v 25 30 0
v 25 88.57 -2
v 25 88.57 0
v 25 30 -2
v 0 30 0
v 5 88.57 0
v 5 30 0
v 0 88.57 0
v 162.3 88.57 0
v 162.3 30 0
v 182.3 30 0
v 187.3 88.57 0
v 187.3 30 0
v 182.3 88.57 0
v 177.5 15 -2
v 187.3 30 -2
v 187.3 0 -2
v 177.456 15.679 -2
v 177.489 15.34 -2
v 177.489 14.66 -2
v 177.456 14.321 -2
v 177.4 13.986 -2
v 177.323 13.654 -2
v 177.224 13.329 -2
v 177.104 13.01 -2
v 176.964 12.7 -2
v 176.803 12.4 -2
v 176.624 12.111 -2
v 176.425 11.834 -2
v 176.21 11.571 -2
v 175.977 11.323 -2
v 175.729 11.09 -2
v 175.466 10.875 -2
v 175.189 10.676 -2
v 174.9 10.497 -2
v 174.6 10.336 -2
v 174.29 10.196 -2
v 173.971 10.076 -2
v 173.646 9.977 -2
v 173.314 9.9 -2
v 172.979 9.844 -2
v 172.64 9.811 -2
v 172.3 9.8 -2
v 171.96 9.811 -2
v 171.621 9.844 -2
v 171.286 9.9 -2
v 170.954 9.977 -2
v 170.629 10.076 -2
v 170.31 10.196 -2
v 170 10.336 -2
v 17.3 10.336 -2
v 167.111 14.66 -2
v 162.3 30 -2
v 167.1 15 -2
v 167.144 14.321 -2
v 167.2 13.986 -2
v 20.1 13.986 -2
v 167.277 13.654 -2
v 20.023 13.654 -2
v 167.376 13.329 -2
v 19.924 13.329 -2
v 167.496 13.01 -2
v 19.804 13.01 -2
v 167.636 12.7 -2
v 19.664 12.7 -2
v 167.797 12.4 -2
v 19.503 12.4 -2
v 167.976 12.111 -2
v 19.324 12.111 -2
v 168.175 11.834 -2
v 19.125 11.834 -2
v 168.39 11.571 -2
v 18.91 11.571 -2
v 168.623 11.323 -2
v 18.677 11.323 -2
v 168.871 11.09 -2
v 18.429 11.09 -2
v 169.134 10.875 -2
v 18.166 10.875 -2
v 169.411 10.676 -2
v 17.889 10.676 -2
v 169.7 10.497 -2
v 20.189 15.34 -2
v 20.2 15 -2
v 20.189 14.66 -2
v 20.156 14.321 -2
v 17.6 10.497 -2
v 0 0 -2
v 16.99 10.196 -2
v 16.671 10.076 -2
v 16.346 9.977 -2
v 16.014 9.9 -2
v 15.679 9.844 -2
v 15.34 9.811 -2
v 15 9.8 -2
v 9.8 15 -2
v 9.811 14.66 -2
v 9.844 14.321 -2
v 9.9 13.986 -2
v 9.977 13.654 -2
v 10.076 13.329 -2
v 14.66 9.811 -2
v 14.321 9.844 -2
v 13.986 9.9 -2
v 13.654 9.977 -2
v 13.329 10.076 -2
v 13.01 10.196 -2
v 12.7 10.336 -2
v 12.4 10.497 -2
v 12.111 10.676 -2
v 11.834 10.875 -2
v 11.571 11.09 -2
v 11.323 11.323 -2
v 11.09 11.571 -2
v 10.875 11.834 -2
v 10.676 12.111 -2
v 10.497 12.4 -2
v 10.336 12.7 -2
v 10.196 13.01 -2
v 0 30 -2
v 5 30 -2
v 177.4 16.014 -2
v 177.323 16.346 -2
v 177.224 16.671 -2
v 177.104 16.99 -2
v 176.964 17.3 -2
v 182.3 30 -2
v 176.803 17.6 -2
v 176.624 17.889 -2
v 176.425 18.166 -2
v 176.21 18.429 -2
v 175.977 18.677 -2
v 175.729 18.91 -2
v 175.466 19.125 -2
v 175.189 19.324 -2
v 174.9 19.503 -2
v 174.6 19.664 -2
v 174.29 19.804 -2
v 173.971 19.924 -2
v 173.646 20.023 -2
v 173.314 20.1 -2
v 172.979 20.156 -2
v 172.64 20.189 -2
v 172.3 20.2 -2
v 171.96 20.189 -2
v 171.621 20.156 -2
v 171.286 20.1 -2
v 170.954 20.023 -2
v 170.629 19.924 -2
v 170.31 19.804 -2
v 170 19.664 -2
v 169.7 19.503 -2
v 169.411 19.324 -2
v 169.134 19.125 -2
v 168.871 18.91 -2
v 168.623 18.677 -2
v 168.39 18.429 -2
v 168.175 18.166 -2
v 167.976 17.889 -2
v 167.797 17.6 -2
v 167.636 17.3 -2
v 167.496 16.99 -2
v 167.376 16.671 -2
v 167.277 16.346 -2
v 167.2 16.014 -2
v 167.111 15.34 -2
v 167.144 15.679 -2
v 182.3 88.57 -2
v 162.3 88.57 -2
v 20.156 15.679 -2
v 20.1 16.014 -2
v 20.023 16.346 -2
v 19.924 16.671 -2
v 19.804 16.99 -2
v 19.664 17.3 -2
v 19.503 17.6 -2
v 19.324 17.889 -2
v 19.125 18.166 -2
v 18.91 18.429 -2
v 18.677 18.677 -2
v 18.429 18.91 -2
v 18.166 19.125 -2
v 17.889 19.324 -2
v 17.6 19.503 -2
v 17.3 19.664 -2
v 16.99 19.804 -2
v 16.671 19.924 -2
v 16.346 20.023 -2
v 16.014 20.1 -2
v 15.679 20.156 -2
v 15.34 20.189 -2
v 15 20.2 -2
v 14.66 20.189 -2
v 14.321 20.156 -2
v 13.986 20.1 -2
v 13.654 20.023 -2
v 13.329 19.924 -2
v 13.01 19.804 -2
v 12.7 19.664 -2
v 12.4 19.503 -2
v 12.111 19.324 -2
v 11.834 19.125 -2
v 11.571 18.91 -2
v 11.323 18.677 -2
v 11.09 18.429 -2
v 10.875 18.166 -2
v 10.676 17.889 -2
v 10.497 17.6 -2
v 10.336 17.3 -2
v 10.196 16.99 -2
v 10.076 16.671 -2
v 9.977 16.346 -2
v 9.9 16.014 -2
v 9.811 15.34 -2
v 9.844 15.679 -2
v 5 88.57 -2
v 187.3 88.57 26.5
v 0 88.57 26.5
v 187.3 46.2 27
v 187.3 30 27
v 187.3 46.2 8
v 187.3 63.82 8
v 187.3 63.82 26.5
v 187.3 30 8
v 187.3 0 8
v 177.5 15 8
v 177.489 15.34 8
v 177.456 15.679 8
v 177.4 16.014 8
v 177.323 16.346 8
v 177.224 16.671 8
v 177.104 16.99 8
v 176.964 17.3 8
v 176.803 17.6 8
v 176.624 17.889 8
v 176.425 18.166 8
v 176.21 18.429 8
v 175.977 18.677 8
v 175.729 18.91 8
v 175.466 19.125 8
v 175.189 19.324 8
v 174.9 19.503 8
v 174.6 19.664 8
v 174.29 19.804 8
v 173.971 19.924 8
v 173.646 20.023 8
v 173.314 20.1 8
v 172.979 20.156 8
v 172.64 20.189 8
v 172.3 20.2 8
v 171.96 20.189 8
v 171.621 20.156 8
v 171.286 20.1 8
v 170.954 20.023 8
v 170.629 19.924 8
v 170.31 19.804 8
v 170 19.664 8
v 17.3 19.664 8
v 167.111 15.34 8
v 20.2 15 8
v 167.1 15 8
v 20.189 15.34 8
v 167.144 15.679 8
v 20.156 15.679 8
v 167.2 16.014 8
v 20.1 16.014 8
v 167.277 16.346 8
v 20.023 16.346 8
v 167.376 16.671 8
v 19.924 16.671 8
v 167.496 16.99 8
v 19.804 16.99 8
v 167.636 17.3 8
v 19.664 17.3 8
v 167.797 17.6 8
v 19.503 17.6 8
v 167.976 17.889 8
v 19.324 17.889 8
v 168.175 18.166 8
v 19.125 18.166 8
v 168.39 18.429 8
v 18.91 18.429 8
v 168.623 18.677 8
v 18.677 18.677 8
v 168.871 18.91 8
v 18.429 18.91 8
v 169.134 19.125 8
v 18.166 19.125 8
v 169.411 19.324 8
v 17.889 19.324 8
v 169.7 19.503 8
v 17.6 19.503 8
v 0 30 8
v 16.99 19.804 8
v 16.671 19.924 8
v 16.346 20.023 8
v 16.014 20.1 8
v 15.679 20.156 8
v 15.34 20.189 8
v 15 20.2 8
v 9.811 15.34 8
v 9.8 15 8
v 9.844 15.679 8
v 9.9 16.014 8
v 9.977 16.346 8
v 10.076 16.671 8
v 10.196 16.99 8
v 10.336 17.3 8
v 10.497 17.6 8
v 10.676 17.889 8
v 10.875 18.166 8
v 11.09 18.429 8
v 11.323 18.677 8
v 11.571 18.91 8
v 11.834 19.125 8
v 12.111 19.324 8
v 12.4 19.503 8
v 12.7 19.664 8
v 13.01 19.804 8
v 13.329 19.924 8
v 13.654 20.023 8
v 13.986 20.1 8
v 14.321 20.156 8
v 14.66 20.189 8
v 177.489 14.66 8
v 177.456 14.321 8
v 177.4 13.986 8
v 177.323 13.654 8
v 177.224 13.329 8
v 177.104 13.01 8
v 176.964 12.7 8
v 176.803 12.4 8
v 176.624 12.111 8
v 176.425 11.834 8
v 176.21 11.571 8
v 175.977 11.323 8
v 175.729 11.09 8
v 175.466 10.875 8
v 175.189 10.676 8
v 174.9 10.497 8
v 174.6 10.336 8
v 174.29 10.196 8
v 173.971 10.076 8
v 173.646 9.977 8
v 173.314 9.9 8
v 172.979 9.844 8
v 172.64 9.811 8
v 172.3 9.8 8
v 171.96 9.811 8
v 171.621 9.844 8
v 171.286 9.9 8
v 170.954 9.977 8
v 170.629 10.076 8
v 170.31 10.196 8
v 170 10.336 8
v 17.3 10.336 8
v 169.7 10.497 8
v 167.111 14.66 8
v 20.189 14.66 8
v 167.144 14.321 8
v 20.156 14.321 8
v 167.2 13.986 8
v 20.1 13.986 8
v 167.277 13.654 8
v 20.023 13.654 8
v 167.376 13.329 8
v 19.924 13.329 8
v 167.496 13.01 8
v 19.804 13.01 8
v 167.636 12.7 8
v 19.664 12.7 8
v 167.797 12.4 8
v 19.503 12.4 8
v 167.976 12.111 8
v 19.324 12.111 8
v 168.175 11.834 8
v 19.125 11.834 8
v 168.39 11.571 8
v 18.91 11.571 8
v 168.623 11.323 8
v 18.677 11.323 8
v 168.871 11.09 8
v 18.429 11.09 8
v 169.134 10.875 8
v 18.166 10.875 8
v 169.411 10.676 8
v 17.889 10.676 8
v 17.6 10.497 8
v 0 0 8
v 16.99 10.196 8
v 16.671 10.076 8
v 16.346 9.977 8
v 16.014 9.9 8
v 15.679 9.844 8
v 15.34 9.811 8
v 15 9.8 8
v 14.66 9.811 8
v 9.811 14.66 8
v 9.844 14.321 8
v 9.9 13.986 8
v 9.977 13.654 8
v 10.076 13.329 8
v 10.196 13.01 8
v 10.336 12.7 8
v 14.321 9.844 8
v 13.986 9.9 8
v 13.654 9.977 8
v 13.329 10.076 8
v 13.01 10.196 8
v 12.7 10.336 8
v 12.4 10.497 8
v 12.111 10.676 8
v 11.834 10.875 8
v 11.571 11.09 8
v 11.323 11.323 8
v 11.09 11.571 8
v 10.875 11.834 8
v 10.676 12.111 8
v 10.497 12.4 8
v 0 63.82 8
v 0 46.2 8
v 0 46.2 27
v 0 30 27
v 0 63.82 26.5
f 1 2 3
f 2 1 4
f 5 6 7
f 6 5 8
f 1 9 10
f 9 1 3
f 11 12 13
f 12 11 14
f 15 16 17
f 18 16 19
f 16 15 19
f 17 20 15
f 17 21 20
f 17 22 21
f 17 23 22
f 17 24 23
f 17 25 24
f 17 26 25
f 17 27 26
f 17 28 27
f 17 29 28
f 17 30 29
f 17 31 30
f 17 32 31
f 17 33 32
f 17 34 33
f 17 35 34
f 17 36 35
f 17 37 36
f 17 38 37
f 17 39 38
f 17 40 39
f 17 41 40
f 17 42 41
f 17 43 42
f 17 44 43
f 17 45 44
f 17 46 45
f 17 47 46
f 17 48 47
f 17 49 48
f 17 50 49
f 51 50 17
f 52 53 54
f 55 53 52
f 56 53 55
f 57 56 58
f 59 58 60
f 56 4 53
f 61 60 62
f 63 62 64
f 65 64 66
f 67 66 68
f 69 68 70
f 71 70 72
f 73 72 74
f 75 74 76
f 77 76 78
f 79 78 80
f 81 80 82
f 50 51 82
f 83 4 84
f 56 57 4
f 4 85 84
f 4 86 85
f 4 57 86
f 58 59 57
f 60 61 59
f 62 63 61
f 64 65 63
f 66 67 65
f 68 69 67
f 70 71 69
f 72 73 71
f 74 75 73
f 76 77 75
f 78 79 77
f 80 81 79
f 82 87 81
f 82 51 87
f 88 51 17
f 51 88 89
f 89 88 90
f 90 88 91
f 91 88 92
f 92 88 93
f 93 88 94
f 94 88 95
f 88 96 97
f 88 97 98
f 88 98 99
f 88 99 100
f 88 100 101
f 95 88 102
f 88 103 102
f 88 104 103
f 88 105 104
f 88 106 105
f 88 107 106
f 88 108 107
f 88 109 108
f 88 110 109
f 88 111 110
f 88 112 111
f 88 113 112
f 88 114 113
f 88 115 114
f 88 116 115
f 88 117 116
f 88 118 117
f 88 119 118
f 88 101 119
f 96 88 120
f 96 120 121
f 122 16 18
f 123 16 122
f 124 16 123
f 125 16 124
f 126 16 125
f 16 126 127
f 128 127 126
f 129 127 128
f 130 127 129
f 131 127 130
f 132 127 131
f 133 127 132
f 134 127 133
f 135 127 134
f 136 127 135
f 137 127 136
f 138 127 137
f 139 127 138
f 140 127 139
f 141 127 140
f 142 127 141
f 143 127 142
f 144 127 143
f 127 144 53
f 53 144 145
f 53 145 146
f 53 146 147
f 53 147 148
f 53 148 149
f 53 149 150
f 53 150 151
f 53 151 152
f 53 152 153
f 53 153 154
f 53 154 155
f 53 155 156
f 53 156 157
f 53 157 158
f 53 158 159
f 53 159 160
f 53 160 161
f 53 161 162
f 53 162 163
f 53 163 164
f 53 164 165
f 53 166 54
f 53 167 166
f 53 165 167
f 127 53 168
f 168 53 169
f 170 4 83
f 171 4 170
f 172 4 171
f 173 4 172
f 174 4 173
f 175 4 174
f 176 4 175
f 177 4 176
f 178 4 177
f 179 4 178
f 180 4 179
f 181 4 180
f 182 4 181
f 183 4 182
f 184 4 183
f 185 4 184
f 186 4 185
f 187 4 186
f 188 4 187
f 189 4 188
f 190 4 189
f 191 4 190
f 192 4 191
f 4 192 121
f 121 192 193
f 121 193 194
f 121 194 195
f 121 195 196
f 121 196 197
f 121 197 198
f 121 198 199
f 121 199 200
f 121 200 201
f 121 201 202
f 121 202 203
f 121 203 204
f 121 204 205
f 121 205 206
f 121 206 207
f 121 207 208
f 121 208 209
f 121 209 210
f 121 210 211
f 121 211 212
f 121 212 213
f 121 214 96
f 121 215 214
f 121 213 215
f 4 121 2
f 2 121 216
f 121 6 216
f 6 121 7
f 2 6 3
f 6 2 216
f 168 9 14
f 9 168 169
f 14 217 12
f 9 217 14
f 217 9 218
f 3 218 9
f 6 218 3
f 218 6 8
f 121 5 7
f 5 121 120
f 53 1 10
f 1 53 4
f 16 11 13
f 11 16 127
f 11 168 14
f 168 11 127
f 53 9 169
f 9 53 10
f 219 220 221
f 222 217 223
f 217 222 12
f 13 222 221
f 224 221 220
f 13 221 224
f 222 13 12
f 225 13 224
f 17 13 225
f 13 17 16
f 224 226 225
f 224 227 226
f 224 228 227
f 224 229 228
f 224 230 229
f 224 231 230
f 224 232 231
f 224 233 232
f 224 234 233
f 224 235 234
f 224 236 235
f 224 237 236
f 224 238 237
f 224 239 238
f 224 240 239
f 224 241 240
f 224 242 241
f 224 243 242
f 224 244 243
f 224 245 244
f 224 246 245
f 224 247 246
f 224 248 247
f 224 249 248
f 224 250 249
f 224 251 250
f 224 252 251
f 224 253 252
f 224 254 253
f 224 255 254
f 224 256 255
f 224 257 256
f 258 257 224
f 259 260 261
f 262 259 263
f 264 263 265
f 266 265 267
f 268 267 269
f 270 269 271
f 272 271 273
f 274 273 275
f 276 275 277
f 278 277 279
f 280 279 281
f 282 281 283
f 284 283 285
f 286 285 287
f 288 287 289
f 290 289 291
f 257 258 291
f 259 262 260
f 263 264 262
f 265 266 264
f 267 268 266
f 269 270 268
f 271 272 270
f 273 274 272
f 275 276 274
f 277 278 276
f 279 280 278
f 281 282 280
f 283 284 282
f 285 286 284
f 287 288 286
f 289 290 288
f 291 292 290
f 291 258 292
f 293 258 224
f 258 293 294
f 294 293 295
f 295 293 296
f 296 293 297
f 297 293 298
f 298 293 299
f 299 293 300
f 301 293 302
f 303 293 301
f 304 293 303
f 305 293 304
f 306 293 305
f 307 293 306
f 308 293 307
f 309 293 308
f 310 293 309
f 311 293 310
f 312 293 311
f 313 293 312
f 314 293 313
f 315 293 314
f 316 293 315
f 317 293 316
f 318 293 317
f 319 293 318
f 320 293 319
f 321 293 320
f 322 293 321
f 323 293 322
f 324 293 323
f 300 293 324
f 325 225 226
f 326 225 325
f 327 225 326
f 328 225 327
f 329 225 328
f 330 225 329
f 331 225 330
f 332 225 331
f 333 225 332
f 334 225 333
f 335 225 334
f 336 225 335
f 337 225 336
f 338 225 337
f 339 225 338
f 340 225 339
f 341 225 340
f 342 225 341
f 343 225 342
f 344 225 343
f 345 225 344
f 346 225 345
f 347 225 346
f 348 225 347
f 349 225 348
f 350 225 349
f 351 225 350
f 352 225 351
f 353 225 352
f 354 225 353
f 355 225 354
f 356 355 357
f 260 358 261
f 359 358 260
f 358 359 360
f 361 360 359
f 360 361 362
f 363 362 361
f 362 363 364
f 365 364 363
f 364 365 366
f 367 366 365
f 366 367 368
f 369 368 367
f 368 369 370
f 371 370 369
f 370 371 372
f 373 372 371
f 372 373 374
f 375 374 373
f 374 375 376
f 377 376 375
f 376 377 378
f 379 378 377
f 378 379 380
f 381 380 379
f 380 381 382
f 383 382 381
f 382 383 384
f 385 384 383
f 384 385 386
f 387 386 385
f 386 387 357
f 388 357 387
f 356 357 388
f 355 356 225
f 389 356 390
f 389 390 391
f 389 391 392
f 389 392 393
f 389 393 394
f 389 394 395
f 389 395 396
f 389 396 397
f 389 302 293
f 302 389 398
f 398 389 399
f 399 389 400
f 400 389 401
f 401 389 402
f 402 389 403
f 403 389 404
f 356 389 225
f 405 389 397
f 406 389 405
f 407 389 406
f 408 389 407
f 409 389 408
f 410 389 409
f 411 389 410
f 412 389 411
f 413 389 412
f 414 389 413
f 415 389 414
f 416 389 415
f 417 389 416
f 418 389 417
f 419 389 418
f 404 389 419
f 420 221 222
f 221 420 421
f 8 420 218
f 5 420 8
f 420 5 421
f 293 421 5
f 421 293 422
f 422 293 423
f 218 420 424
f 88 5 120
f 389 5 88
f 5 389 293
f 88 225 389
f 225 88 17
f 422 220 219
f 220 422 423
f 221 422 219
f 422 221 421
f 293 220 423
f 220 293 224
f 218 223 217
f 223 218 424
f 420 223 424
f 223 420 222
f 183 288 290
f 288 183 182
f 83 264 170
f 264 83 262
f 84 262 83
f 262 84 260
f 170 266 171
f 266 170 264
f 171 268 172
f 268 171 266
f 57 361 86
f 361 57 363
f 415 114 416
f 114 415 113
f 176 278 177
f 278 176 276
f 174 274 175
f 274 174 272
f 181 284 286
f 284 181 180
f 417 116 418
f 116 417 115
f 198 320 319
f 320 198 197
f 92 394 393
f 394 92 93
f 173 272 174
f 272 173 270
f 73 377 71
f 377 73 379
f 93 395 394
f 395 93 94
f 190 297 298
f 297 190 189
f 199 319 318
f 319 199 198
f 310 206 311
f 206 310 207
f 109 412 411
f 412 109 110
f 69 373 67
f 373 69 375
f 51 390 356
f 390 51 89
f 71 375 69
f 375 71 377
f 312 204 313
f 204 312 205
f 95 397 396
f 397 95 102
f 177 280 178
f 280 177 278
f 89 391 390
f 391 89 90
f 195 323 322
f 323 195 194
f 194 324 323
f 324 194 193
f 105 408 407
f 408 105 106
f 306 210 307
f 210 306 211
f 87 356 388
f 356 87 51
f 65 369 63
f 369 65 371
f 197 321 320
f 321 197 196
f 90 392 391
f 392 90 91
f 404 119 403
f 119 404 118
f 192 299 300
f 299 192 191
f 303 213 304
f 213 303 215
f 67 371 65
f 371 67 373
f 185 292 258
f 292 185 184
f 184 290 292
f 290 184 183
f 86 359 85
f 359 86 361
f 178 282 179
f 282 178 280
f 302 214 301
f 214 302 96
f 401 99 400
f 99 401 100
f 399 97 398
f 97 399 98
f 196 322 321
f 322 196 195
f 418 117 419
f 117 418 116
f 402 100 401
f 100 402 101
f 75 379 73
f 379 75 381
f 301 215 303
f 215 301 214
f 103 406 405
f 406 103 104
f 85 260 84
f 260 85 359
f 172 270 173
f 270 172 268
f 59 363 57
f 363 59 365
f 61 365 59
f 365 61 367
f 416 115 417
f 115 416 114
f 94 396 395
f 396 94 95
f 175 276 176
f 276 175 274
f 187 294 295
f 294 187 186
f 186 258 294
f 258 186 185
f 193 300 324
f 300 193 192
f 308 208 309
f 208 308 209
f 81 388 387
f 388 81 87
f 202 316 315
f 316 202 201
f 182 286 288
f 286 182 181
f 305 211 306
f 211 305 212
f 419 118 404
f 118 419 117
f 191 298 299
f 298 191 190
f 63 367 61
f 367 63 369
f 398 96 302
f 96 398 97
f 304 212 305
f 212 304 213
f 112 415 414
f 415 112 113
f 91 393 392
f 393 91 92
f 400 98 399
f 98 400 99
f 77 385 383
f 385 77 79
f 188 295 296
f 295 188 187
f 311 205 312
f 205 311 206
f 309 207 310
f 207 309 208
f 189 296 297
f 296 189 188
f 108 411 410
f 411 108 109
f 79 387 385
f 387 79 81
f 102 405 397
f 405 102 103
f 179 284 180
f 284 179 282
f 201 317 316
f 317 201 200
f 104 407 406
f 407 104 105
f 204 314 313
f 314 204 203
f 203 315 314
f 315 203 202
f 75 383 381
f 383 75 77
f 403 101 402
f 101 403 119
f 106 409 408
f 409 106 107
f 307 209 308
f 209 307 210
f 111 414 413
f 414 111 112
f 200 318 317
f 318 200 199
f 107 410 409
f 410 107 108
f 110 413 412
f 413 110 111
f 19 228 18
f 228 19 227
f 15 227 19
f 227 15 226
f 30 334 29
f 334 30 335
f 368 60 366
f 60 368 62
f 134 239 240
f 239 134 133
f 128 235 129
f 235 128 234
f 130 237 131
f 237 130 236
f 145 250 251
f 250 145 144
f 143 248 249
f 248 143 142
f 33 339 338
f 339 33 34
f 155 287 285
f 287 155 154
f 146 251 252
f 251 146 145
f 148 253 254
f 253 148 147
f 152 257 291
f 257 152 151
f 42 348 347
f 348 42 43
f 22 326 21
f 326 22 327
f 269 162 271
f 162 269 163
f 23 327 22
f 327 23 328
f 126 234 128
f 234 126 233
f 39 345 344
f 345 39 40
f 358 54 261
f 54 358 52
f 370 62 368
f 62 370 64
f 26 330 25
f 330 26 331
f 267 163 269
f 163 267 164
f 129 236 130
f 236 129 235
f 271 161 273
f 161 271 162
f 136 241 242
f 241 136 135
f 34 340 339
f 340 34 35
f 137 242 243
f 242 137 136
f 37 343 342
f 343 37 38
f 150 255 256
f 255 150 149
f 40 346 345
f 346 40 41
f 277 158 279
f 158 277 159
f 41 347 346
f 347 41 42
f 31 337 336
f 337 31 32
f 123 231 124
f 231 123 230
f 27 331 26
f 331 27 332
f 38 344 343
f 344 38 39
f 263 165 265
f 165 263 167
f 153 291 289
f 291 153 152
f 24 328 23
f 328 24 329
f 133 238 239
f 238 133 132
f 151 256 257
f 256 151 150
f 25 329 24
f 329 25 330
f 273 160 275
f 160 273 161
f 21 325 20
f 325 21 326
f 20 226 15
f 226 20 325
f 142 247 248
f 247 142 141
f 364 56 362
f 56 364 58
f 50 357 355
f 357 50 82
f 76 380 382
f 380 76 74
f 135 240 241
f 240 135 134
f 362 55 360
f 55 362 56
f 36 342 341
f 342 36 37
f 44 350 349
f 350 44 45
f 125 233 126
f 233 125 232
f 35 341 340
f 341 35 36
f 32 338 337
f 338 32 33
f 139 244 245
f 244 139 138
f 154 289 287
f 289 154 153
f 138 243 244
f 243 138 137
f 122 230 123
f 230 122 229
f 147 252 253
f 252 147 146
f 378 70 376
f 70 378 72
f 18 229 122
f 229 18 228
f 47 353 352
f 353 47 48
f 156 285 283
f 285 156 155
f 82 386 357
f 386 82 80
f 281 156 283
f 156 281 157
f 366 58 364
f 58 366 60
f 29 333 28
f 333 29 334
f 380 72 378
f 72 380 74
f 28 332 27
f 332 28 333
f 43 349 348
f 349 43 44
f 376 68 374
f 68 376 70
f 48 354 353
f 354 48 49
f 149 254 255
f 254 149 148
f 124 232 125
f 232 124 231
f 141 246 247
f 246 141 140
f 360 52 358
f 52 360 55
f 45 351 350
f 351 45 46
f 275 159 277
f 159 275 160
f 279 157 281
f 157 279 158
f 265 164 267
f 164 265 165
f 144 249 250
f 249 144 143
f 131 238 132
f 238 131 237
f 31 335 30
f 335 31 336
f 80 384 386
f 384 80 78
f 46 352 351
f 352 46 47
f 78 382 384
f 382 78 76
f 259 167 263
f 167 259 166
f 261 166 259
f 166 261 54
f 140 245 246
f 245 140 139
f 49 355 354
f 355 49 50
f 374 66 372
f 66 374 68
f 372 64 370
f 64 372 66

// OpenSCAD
$fn=96;

// Eurobox V70 clamp v3 prototype.
// X = full clamp width, Y = installed vertical direction, Z = depth toward box.
// Fixed/measured:
// screw axis -> box underside = 15.00 mm
// box underside -> start protrusion = 16.45 mm
// box underside -> top protrusion = 33.57 mm
// protrusion depth ~= 18.50 mm
// upper stabilising contact = 25.00 mm

w = 187.30;
h = 88.57;
spindle_x = [15.00,172.30];
spindle_y = 15.00;

box_bottom_y = 30.00;
pocket_y0 = 46.20; // 0.25 mm below nominal protrusion start
pocket_y1 = 63.82; // 0.25 mm above nominal protrusion top

backbone_t = 8.00;
primary_front = 27.00; // lower primary contact +0.50 vs upper
upper_front = 26.50;

bearing_back = -2.00;
bearing_front = 8.00;
bearing_t = bearing_front-bearing_back; // 10.00 mm
bushing_bore_d = 10.40;
rib_w = 20.00;

module clamp_solid() {
    union() {
        cube([w,h,backbone_t]);

        // Full-width 10 mm screw-zone spine.
        translate([0,0,bearing_back])
            cube([w,box_bottom_y,bearing_t]);

        // Rear ribs above each screw station.
        for (x=spindle_x)
            translate([x-rib_w/2,box_bottom_y,bearing_back])
                cube([rib_w,h-box_bottom_y,2.00]);

        // Primary lower contact.
        translate([0,box_bottom_y,backbone_t])
            cube([w,pocket_y0-box_bottom_y,primary_front-backbone_t]);

        // Y=46.20..63.82 remains recessed to Z=8 for the box protrusion.

        // Upper secondary/stabilising contact.
        translate([0,pocket_y1,backbone_t])
            cube([w,h-pocket_y1,upper_front-backbone_t]);
    }
}

difference() {
    clamp_solid();
    for (x=spindle_x)
        translate([x,spindle_y,bearing_back-0.5])
            cylinder(d=bushing_bore_d,h=bearing_t+1.0);
}
